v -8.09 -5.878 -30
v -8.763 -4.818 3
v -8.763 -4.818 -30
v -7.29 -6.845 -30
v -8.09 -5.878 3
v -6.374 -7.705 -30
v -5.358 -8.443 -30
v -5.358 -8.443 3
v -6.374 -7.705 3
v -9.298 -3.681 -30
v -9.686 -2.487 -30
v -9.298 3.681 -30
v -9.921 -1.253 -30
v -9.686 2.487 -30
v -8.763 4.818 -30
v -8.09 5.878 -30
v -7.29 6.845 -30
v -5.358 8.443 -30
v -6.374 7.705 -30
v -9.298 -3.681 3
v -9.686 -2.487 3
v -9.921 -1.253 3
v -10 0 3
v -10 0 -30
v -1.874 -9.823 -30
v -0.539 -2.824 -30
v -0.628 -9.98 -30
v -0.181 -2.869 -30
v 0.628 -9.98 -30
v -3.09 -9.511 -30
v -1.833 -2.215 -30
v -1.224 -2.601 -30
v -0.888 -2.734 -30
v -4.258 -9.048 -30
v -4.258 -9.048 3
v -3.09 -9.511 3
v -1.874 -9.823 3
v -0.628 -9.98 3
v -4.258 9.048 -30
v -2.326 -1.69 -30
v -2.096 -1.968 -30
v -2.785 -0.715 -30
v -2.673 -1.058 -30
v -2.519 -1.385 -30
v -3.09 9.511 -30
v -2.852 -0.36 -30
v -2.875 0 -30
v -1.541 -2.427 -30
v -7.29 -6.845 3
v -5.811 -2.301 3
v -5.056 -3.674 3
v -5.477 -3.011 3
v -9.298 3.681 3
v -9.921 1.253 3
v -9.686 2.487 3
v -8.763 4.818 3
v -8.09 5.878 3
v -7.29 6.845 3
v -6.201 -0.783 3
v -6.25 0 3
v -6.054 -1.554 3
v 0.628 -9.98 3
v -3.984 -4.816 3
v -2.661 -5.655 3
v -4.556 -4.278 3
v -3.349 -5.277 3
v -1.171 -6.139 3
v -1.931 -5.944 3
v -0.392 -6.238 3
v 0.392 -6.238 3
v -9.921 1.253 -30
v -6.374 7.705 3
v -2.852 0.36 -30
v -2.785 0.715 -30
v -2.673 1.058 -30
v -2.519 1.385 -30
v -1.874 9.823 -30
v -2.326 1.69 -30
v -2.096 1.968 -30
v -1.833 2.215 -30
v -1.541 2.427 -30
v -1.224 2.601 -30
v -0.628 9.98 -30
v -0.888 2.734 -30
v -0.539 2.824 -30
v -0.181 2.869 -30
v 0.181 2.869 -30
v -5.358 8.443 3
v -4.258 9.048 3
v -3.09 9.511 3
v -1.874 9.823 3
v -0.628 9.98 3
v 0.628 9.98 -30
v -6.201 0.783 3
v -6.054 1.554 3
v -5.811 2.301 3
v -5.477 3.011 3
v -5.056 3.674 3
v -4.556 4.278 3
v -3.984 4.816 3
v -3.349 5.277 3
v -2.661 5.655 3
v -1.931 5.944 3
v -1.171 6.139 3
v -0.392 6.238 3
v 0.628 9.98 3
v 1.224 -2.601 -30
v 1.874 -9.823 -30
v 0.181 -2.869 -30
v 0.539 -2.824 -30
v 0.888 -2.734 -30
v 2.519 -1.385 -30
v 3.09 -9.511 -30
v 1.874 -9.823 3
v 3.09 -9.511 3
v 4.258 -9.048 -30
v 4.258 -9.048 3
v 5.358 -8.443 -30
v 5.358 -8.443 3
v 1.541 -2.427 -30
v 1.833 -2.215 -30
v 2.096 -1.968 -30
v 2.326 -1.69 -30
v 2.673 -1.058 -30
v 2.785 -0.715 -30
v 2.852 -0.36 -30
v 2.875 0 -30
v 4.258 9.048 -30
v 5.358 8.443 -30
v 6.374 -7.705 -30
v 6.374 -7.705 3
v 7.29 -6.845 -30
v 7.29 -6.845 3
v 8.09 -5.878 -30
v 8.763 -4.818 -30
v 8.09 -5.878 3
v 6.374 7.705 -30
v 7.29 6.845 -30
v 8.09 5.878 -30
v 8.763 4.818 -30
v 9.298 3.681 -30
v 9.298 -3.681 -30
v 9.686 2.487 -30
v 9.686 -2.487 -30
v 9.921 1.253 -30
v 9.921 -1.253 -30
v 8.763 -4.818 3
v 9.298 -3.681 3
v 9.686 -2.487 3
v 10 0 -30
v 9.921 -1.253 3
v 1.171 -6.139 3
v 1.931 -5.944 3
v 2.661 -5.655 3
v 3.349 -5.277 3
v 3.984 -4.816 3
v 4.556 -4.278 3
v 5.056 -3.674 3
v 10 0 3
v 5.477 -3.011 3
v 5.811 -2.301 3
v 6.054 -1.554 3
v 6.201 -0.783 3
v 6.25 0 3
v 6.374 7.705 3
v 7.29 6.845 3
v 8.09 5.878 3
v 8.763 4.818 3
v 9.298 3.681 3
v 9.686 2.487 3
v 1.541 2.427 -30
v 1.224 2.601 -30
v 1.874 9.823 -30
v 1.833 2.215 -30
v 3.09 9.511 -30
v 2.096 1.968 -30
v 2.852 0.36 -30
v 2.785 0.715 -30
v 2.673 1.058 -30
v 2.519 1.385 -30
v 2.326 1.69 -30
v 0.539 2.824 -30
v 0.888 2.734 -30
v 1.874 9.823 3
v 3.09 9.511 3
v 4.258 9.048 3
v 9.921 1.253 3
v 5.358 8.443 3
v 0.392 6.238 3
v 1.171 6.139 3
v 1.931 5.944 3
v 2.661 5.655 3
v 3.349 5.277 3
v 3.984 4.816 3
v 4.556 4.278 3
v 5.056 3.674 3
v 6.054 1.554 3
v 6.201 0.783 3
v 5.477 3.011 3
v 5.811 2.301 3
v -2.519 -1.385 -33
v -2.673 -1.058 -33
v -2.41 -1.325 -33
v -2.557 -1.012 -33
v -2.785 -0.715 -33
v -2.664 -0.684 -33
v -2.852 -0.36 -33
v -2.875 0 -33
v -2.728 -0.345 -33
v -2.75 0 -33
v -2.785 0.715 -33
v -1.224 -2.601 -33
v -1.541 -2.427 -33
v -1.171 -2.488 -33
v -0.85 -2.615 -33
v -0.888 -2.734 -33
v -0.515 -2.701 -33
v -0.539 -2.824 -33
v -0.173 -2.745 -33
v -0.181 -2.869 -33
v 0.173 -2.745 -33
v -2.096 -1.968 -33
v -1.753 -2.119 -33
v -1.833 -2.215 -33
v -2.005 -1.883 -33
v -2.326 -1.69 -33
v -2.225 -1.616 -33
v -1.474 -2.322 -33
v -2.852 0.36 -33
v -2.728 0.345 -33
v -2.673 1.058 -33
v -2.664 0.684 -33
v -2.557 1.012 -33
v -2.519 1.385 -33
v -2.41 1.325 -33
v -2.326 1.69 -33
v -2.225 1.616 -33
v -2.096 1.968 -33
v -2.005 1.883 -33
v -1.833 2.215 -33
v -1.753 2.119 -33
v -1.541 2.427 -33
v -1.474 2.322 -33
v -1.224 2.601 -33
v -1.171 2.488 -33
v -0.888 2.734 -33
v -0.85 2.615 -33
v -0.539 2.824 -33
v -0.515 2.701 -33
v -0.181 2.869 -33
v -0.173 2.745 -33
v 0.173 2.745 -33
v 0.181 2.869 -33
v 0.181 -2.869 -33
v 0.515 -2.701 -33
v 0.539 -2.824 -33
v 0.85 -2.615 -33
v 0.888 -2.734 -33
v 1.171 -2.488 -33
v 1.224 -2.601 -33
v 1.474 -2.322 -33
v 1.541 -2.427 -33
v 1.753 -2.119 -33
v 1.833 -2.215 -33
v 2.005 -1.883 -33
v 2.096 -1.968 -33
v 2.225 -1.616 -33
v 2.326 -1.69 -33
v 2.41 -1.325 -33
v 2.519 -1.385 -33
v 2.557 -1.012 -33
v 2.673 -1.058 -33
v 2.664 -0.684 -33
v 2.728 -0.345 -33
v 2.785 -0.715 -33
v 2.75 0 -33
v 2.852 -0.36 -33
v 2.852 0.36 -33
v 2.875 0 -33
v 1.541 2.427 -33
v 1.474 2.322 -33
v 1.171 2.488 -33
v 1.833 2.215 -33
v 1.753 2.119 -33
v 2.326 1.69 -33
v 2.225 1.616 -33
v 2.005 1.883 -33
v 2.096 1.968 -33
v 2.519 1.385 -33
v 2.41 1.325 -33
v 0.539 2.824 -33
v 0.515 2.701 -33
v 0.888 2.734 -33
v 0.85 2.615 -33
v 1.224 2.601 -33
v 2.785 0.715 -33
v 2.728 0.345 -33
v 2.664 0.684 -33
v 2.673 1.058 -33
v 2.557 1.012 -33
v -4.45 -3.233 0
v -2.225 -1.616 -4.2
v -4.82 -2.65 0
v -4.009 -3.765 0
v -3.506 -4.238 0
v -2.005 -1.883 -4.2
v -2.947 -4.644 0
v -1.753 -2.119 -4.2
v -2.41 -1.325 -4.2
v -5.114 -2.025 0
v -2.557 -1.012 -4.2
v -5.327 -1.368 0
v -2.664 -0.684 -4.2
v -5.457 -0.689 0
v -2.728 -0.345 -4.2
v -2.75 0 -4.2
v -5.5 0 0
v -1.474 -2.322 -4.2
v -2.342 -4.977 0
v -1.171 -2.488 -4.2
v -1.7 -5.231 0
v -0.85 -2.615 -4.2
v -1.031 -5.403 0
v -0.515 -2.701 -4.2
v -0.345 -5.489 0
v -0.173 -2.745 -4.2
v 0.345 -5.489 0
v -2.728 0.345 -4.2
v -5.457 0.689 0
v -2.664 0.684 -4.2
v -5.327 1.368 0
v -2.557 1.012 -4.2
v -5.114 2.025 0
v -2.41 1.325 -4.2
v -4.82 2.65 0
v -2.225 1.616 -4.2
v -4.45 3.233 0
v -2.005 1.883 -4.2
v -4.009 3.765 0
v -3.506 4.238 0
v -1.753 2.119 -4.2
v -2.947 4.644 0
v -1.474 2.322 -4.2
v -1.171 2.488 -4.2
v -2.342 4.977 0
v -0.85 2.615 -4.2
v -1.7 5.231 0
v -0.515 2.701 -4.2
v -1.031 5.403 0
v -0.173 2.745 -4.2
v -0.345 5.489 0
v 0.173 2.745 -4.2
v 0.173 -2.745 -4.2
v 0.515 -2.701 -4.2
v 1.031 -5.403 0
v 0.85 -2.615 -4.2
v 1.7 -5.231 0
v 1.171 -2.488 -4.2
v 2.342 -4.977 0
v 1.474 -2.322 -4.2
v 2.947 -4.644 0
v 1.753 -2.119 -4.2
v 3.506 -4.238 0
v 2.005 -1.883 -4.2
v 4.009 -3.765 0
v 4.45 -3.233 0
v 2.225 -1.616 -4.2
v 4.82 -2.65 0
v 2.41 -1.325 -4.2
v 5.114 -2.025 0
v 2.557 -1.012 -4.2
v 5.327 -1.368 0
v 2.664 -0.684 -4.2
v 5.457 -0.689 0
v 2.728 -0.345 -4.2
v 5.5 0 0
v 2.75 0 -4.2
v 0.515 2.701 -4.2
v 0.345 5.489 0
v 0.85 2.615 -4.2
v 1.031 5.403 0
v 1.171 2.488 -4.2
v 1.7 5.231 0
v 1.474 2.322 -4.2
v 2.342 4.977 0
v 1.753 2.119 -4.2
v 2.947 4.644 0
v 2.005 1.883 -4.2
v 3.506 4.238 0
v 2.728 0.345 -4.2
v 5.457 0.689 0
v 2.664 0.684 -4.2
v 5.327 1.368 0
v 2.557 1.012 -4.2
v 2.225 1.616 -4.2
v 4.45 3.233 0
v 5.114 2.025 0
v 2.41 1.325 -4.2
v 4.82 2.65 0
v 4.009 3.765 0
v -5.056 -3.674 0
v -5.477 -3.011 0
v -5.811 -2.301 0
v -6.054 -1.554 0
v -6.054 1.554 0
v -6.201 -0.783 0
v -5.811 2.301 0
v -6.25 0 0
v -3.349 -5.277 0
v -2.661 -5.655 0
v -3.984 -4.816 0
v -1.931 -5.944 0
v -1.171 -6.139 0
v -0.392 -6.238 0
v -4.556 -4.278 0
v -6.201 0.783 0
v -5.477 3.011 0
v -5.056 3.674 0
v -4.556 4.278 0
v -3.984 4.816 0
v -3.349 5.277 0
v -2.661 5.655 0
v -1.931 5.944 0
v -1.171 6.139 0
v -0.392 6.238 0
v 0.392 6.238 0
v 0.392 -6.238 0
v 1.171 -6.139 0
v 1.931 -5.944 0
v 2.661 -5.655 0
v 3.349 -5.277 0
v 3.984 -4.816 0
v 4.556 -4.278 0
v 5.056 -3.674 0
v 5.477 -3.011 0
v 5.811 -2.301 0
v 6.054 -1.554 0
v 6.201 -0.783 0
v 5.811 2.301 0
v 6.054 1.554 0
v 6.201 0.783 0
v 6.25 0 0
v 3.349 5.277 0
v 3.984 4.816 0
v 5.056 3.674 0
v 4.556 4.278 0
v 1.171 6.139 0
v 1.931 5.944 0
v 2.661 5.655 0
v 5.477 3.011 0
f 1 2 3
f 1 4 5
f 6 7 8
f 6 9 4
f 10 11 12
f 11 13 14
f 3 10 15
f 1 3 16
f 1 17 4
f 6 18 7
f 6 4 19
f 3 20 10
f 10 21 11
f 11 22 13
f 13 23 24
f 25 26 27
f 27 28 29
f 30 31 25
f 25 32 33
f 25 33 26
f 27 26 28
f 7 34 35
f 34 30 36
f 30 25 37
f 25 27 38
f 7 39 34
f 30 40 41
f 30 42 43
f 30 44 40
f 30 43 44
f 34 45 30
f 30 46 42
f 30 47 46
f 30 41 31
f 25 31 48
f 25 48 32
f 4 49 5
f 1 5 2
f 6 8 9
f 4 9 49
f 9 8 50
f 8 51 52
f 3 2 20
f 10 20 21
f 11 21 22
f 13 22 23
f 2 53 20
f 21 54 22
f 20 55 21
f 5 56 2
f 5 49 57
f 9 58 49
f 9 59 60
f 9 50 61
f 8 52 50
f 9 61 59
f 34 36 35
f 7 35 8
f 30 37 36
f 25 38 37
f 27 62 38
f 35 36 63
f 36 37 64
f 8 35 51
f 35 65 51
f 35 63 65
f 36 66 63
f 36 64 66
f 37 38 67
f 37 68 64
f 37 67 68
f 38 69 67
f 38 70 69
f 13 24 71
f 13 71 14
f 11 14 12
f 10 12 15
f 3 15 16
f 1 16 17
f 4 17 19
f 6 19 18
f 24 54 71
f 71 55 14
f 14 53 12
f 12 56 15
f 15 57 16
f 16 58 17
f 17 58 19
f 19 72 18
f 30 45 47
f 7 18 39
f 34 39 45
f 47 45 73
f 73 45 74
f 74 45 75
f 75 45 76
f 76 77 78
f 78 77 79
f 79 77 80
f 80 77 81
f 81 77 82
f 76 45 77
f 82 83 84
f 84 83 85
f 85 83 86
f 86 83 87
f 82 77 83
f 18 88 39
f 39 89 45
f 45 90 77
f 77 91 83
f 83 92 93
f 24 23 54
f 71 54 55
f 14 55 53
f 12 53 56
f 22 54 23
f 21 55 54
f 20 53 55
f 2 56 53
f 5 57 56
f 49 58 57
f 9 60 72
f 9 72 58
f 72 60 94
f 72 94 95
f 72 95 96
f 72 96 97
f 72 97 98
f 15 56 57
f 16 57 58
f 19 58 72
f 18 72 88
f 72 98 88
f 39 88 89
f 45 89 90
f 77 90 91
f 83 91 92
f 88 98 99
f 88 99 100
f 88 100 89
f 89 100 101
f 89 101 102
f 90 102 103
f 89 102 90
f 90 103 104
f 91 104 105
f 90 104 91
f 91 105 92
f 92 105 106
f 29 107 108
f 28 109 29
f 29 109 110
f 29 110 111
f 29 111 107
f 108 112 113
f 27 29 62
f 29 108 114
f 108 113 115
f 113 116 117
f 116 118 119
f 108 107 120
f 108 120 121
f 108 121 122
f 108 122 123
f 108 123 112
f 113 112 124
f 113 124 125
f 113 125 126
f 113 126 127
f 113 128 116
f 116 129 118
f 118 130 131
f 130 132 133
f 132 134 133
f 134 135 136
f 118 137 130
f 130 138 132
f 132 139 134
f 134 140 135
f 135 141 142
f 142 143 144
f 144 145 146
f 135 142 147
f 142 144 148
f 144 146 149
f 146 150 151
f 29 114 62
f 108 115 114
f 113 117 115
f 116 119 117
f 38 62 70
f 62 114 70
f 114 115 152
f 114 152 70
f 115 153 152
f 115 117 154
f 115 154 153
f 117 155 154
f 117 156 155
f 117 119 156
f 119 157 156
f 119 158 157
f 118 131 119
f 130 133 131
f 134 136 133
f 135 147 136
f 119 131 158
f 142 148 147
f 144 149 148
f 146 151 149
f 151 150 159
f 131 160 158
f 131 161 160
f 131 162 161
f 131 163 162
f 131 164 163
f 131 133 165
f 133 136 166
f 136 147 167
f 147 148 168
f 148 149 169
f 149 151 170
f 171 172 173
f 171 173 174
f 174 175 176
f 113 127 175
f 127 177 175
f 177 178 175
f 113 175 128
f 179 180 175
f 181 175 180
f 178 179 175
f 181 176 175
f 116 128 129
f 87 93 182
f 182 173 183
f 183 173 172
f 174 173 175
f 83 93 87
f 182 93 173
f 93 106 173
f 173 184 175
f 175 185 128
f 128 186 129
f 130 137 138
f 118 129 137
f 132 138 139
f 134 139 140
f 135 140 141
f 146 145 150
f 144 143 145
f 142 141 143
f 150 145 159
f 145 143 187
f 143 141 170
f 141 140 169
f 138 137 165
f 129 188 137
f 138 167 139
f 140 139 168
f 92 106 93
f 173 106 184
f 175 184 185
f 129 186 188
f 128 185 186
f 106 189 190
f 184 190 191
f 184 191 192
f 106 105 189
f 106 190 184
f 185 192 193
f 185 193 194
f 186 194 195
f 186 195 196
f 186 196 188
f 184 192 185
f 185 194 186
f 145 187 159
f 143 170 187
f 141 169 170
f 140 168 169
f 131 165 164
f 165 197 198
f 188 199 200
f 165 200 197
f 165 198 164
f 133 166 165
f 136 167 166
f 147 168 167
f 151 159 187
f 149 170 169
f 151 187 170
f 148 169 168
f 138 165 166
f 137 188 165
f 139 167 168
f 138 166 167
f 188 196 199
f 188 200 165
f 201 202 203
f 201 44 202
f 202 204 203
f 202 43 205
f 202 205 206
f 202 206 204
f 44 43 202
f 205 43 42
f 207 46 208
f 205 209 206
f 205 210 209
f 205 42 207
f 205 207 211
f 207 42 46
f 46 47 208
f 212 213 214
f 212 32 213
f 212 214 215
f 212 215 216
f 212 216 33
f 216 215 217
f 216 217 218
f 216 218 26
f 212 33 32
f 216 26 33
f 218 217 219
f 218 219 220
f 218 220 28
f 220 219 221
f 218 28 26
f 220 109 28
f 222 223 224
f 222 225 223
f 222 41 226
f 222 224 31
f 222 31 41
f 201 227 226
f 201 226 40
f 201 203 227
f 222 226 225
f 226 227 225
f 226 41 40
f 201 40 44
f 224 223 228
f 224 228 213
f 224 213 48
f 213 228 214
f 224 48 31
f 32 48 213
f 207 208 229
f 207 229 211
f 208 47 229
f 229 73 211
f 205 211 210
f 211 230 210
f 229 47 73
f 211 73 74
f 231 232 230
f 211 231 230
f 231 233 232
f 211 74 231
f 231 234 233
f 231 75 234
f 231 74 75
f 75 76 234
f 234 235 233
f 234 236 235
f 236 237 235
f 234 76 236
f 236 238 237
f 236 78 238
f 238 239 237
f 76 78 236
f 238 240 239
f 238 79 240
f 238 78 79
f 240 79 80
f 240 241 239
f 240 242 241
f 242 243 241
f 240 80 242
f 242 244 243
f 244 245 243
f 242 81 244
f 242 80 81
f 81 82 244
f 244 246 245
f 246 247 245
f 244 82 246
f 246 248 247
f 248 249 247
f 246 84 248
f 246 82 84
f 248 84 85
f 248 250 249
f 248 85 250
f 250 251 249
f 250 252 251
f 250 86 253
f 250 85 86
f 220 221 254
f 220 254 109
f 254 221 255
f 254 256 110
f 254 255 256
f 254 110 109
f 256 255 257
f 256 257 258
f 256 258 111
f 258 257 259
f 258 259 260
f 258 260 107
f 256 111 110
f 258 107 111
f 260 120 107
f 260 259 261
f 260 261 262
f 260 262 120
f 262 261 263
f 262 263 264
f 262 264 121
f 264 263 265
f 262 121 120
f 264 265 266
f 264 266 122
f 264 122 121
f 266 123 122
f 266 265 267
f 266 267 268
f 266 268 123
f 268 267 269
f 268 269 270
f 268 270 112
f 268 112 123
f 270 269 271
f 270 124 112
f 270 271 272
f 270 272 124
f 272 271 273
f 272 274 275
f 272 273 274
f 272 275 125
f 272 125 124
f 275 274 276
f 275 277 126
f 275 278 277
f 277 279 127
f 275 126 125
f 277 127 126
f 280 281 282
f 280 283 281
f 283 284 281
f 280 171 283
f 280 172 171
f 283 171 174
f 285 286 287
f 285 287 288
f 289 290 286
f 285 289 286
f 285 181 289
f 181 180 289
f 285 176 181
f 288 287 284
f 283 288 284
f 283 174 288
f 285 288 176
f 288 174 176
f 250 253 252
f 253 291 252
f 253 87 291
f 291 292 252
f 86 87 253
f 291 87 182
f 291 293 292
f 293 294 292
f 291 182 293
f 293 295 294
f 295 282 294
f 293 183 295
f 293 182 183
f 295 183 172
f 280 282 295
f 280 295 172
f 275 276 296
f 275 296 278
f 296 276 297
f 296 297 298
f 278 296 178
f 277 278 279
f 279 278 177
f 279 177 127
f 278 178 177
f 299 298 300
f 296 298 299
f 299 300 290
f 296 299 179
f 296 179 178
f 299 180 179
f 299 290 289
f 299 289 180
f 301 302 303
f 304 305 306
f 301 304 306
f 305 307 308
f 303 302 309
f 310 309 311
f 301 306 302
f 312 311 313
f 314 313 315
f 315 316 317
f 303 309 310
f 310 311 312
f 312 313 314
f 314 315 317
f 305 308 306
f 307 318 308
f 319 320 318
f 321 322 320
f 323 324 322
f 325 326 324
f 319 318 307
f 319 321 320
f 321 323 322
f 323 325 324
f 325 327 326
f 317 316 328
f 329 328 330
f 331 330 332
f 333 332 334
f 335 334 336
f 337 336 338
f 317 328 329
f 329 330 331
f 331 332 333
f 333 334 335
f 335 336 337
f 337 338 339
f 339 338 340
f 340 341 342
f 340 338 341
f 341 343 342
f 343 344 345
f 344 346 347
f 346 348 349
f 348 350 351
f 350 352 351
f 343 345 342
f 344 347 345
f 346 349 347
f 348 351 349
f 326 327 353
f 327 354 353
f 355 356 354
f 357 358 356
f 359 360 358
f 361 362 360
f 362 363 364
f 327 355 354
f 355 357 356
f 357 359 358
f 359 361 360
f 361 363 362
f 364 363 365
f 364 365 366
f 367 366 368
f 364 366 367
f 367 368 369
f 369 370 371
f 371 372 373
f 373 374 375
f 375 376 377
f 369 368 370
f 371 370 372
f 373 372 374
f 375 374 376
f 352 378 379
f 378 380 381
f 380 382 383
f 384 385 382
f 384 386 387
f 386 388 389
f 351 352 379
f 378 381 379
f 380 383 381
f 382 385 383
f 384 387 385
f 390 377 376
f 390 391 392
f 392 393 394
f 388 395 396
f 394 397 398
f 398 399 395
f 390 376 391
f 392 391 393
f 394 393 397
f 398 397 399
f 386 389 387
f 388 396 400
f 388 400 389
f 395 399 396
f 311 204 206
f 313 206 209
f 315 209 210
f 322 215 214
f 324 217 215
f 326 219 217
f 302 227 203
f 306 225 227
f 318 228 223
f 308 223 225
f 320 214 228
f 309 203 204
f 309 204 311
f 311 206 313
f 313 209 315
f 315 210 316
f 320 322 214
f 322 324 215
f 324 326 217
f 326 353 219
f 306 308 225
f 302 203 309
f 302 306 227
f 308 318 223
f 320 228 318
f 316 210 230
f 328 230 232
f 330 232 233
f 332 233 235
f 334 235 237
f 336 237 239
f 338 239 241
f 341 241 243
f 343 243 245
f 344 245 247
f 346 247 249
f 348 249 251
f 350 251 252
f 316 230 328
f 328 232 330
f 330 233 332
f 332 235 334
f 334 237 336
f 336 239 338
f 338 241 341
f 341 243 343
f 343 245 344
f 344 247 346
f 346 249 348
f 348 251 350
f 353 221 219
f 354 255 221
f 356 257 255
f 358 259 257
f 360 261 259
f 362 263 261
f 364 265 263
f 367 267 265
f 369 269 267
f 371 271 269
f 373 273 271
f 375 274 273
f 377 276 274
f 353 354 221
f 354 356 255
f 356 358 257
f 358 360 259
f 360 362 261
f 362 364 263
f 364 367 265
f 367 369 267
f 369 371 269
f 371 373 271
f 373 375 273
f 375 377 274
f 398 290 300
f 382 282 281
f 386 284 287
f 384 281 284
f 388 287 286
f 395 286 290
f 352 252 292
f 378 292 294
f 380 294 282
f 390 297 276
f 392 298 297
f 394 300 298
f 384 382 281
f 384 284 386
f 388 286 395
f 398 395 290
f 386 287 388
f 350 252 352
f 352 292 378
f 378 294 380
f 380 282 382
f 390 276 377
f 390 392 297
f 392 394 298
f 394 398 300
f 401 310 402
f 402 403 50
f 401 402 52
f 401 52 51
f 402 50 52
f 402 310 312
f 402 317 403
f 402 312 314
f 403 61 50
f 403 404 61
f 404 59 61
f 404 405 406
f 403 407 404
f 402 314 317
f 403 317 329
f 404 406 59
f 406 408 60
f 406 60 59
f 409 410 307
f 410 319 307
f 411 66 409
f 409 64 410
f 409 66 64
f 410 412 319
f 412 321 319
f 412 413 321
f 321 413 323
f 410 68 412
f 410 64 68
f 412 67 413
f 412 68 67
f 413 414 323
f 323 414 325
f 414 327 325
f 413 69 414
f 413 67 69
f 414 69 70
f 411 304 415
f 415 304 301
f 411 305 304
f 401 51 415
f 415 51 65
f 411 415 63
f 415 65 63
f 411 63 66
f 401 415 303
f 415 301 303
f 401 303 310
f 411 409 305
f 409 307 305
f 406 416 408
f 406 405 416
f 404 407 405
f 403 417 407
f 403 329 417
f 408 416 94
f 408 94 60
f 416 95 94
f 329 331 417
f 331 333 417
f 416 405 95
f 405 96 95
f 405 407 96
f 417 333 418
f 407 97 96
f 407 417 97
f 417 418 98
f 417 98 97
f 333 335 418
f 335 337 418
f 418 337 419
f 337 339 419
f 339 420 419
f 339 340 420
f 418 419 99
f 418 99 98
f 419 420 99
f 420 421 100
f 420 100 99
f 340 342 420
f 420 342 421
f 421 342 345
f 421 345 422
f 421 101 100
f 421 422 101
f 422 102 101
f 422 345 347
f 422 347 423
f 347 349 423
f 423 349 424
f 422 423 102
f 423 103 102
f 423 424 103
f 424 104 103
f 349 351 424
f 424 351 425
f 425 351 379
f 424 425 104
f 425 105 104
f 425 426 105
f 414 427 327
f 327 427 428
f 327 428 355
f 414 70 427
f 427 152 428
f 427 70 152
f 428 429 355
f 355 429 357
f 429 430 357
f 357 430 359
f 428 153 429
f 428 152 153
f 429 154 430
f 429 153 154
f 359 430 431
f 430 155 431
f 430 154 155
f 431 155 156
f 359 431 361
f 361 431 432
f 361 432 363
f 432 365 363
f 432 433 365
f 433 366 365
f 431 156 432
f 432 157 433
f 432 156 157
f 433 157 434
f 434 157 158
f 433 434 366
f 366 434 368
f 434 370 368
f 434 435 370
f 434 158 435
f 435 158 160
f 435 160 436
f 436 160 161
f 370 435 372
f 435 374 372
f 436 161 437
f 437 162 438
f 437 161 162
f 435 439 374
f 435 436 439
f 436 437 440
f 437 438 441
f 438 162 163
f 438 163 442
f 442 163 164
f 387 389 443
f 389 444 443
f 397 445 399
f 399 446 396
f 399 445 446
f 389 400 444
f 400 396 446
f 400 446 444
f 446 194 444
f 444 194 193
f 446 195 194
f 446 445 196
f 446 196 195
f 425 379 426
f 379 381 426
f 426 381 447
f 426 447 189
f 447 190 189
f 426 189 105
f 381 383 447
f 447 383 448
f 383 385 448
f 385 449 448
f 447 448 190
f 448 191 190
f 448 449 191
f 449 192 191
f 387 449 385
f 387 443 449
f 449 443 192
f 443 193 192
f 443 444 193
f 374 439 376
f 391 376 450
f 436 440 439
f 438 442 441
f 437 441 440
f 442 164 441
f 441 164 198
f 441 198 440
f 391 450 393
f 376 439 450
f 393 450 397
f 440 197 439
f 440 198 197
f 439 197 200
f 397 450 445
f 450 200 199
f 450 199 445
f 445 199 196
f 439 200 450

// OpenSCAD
$fn = 50;

difference() {
	union() {
		translate(v = [0, 0, -30.0]) {
			cylinder(h = 33, r = 10.0);
		}
		#translate(v = [0, 0, -33.0]) {
			cylinder(h = 33, r = 2.875);
		}
	}
	union() {
		translate(v = [0, 0, 0]) {
			rotate(a = [0, 0, 0]) {
				difference() {
					union() {
						translate(v = [0, 0, -33.0]) {
							cylinder(h = 33, r = 2.25);
						}
						translate(v = [0, 0, -4.2]) {
							cylinder(h = 4.2, r1 = 2.75, r2 = 5.5);
						}
						translate(v = [0, 0, -33.0]) {
							cylinder(h = 33, r = 2.75);
						}
						translate(v = [0, 0, -33.0]) {
							cylinder(h = 33, r = 2.25);
						}
					}
					union();
				}
			}
		}
		#cylinder(h = 3, r = 6.25);
	}
}
